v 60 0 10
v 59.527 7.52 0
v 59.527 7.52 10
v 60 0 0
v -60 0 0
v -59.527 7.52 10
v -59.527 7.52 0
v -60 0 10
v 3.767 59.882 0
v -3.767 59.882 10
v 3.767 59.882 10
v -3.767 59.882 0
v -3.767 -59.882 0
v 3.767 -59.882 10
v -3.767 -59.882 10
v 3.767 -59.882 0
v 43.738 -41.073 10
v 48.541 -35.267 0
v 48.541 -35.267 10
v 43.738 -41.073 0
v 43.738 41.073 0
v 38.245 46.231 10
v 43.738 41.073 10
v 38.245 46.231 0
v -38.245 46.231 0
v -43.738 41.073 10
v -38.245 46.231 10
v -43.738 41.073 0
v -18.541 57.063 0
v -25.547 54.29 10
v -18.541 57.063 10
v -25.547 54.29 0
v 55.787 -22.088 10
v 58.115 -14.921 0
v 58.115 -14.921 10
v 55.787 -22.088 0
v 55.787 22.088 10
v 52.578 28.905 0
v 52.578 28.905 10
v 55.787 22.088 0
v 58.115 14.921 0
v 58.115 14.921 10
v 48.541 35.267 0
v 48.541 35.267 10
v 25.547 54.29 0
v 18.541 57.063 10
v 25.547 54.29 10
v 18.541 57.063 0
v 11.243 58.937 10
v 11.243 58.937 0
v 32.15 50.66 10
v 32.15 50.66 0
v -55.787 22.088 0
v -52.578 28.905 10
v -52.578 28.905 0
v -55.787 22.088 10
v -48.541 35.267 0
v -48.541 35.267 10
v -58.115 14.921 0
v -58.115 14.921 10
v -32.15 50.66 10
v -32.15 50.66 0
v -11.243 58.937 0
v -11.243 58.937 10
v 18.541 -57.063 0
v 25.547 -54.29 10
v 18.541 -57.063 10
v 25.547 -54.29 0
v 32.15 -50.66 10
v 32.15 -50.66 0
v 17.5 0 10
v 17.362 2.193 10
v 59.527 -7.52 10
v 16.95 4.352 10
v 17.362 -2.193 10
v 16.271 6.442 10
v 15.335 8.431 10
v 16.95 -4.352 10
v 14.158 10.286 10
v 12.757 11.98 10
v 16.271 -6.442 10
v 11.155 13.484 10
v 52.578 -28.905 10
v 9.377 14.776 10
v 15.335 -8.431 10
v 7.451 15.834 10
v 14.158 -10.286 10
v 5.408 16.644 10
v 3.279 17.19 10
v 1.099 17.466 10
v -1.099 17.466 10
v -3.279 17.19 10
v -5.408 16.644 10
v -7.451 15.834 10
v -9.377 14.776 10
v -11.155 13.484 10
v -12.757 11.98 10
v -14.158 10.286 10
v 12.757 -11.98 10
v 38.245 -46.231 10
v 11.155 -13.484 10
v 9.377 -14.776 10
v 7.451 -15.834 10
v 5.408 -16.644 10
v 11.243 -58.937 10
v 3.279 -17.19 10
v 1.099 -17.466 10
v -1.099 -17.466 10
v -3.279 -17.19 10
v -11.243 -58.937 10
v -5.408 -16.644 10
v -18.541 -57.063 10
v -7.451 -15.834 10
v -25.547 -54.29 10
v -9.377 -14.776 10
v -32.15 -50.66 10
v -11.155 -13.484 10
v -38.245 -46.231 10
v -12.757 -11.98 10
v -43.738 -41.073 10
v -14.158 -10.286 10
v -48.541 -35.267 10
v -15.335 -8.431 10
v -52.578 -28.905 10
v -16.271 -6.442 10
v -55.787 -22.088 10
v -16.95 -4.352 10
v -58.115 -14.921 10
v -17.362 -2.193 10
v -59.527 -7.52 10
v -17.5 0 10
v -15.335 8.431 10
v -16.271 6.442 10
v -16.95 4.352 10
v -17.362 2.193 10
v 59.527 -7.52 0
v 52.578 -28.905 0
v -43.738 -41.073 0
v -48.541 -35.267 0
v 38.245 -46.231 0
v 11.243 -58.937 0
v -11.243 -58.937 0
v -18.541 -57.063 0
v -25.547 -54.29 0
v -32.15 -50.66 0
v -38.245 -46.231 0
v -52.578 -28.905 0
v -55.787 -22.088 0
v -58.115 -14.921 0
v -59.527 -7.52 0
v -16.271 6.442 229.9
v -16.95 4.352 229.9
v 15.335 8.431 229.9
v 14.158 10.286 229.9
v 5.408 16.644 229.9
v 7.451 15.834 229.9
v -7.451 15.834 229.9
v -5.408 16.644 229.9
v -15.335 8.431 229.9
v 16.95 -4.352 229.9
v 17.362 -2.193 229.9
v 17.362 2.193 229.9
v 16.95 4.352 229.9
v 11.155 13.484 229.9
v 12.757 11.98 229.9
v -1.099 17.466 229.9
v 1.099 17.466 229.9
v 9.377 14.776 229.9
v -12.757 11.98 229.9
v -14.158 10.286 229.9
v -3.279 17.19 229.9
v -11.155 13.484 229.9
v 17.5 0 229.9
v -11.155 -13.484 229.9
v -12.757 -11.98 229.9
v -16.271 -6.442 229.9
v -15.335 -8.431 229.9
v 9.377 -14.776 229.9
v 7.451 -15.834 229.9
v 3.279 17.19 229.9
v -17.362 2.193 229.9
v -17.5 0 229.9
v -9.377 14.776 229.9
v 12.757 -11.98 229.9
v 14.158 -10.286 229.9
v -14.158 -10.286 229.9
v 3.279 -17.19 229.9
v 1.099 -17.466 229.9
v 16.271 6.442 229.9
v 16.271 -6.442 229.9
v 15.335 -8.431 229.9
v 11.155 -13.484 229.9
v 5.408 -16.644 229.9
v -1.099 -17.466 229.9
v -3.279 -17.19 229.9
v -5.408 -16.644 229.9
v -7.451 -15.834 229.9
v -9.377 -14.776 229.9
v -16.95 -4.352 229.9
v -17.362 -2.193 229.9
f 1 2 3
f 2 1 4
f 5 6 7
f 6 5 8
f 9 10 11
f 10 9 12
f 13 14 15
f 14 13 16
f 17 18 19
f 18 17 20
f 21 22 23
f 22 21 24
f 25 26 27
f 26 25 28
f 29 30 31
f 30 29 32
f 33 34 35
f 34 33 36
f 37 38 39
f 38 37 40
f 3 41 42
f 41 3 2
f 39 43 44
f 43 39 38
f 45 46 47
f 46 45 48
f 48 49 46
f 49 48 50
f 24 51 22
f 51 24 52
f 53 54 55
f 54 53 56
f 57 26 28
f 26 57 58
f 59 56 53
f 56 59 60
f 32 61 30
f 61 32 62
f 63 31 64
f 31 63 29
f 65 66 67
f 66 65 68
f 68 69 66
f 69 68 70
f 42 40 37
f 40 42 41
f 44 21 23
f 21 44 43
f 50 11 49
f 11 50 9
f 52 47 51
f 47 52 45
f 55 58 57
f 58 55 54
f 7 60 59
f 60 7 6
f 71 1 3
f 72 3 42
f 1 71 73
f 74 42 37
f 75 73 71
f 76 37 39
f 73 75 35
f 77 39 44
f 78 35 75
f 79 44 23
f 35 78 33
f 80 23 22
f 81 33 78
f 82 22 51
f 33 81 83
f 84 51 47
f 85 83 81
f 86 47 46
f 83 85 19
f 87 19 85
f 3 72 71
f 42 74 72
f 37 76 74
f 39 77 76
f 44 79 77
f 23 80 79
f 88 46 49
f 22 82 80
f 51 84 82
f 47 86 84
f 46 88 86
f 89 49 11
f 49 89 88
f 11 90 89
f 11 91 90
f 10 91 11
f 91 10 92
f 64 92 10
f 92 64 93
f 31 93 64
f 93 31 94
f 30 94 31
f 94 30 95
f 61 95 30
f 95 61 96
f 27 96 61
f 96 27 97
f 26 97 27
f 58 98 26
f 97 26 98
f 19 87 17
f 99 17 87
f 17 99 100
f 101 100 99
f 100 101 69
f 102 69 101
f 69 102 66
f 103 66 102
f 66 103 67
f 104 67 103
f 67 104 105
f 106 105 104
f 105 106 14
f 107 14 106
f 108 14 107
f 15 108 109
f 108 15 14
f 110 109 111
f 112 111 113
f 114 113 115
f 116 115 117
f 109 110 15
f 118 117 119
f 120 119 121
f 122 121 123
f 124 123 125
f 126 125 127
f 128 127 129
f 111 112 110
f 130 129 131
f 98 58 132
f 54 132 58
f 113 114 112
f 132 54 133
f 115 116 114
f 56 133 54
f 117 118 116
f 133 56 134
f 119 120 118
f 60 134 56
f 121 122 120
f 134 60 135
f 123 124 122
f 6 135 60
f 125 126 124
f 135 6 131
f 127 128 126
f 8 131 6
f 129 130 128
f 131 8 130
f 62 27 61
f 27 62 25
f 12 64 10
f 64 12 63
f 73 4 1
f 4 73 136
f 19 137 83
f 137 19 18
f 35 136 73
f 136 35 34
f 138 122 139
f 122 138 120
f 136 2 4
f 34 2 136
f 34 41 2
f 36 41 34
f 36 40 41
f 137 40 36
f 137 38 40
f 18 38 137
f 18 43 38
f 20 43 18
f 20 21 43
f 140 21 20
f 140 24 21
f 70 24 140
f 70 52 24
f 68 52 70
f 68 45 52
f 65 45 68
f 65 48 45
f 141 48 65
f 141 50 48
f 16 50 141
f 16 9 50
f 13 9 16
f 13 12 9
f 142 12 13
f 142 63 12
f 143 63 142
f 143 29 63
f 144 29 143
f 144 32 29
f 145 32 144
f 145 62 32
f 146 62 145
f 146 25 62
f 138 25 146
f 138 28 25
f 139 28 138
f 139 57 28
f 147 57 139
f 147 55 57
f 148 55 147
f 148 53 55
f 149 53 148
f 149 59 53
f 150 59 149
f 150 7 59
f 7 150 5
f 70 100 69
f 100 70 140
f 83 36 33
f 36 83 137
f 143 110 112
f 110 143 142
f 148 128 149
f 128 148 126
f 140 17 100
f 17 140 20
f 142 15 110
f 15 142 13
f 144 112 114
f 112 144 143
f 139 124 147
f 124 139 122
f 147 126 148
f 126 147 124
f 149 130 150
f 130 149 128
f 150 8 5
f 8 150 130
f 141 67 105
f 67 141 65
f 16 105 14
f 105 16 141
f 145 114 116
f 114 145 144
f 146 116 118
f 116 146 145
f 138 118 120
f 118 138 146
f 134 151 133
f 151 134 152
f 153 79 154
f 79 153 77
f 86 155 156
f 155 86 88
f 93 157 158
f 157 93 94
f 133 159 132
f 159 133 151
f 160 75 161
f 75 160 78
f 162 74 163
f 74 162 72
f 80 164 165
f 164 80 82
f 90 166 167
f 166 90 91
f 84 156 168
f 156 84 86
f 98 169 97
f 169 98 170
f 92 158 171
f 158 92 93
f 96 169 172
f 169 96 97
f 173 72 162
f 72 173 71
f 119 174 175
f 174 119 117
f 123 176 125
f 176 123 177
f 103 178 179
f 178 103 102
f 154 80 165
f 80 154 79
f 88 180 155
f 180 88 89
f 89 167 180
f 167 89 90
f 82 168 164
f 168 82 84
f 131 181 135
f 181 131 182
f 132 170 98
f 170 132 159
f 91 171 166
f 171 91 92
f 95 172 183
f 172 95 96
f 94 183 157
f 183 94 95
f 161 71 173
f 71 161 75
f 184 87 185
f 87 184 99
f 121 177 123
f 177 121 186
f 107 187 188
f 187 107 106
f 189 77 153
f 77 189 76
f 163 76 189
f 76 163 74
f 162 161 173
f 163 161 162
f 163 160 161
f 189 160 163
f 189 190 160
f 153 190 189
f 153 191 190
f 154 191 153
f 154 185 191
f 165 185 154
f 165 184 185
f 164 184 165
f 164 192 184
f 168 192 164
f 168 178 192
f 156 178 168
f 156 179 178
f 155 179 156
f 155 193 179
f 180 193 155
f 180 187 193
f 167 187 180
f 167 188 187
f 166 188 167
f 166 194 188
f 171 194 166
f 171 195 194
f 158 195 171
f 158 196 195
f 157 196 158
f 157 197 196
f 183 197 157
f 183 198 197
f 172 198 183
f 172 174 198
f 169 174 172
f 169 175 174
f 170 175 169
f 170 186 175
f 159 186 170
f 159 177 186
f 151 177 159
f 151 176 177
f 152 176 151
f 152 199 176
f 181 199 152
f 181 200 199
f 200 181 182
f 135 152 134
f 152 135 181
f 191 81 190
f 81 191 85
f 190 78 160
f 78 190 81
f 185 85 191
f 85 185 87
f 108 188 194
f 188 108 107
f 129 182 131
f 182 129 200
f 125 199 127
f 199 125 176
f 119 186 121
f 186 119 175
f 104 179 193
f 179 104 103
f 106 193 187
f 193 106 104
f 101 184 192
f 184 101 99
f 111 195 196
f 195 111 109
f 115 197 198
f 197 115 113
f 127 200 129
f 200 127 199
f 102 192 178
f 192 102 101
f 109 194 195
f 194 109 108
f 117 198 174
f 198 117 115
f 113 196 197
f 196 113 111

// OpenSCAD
// A standing holder for kitchen rolls. Very basic.
// Tip: Attach bottom with poster sticker gum.
// (C) 2016 Anders Breindahl <skrewz@skrewz.net>. Released under the GPL3+.

$fn=50;
corner_radius=2.5;
foot_diameter=120;
foot_height=10;

column_height=220;
column_diameter=35;

union()
{
  cylinder(r=foot_diameter/2, h=foot_height);
  translate([0,0,foot_height*0.99])
    cylinder(r=column_diameter/2, h=column_height);
}


// vim: ft=openscad fdm=marker fml=1
